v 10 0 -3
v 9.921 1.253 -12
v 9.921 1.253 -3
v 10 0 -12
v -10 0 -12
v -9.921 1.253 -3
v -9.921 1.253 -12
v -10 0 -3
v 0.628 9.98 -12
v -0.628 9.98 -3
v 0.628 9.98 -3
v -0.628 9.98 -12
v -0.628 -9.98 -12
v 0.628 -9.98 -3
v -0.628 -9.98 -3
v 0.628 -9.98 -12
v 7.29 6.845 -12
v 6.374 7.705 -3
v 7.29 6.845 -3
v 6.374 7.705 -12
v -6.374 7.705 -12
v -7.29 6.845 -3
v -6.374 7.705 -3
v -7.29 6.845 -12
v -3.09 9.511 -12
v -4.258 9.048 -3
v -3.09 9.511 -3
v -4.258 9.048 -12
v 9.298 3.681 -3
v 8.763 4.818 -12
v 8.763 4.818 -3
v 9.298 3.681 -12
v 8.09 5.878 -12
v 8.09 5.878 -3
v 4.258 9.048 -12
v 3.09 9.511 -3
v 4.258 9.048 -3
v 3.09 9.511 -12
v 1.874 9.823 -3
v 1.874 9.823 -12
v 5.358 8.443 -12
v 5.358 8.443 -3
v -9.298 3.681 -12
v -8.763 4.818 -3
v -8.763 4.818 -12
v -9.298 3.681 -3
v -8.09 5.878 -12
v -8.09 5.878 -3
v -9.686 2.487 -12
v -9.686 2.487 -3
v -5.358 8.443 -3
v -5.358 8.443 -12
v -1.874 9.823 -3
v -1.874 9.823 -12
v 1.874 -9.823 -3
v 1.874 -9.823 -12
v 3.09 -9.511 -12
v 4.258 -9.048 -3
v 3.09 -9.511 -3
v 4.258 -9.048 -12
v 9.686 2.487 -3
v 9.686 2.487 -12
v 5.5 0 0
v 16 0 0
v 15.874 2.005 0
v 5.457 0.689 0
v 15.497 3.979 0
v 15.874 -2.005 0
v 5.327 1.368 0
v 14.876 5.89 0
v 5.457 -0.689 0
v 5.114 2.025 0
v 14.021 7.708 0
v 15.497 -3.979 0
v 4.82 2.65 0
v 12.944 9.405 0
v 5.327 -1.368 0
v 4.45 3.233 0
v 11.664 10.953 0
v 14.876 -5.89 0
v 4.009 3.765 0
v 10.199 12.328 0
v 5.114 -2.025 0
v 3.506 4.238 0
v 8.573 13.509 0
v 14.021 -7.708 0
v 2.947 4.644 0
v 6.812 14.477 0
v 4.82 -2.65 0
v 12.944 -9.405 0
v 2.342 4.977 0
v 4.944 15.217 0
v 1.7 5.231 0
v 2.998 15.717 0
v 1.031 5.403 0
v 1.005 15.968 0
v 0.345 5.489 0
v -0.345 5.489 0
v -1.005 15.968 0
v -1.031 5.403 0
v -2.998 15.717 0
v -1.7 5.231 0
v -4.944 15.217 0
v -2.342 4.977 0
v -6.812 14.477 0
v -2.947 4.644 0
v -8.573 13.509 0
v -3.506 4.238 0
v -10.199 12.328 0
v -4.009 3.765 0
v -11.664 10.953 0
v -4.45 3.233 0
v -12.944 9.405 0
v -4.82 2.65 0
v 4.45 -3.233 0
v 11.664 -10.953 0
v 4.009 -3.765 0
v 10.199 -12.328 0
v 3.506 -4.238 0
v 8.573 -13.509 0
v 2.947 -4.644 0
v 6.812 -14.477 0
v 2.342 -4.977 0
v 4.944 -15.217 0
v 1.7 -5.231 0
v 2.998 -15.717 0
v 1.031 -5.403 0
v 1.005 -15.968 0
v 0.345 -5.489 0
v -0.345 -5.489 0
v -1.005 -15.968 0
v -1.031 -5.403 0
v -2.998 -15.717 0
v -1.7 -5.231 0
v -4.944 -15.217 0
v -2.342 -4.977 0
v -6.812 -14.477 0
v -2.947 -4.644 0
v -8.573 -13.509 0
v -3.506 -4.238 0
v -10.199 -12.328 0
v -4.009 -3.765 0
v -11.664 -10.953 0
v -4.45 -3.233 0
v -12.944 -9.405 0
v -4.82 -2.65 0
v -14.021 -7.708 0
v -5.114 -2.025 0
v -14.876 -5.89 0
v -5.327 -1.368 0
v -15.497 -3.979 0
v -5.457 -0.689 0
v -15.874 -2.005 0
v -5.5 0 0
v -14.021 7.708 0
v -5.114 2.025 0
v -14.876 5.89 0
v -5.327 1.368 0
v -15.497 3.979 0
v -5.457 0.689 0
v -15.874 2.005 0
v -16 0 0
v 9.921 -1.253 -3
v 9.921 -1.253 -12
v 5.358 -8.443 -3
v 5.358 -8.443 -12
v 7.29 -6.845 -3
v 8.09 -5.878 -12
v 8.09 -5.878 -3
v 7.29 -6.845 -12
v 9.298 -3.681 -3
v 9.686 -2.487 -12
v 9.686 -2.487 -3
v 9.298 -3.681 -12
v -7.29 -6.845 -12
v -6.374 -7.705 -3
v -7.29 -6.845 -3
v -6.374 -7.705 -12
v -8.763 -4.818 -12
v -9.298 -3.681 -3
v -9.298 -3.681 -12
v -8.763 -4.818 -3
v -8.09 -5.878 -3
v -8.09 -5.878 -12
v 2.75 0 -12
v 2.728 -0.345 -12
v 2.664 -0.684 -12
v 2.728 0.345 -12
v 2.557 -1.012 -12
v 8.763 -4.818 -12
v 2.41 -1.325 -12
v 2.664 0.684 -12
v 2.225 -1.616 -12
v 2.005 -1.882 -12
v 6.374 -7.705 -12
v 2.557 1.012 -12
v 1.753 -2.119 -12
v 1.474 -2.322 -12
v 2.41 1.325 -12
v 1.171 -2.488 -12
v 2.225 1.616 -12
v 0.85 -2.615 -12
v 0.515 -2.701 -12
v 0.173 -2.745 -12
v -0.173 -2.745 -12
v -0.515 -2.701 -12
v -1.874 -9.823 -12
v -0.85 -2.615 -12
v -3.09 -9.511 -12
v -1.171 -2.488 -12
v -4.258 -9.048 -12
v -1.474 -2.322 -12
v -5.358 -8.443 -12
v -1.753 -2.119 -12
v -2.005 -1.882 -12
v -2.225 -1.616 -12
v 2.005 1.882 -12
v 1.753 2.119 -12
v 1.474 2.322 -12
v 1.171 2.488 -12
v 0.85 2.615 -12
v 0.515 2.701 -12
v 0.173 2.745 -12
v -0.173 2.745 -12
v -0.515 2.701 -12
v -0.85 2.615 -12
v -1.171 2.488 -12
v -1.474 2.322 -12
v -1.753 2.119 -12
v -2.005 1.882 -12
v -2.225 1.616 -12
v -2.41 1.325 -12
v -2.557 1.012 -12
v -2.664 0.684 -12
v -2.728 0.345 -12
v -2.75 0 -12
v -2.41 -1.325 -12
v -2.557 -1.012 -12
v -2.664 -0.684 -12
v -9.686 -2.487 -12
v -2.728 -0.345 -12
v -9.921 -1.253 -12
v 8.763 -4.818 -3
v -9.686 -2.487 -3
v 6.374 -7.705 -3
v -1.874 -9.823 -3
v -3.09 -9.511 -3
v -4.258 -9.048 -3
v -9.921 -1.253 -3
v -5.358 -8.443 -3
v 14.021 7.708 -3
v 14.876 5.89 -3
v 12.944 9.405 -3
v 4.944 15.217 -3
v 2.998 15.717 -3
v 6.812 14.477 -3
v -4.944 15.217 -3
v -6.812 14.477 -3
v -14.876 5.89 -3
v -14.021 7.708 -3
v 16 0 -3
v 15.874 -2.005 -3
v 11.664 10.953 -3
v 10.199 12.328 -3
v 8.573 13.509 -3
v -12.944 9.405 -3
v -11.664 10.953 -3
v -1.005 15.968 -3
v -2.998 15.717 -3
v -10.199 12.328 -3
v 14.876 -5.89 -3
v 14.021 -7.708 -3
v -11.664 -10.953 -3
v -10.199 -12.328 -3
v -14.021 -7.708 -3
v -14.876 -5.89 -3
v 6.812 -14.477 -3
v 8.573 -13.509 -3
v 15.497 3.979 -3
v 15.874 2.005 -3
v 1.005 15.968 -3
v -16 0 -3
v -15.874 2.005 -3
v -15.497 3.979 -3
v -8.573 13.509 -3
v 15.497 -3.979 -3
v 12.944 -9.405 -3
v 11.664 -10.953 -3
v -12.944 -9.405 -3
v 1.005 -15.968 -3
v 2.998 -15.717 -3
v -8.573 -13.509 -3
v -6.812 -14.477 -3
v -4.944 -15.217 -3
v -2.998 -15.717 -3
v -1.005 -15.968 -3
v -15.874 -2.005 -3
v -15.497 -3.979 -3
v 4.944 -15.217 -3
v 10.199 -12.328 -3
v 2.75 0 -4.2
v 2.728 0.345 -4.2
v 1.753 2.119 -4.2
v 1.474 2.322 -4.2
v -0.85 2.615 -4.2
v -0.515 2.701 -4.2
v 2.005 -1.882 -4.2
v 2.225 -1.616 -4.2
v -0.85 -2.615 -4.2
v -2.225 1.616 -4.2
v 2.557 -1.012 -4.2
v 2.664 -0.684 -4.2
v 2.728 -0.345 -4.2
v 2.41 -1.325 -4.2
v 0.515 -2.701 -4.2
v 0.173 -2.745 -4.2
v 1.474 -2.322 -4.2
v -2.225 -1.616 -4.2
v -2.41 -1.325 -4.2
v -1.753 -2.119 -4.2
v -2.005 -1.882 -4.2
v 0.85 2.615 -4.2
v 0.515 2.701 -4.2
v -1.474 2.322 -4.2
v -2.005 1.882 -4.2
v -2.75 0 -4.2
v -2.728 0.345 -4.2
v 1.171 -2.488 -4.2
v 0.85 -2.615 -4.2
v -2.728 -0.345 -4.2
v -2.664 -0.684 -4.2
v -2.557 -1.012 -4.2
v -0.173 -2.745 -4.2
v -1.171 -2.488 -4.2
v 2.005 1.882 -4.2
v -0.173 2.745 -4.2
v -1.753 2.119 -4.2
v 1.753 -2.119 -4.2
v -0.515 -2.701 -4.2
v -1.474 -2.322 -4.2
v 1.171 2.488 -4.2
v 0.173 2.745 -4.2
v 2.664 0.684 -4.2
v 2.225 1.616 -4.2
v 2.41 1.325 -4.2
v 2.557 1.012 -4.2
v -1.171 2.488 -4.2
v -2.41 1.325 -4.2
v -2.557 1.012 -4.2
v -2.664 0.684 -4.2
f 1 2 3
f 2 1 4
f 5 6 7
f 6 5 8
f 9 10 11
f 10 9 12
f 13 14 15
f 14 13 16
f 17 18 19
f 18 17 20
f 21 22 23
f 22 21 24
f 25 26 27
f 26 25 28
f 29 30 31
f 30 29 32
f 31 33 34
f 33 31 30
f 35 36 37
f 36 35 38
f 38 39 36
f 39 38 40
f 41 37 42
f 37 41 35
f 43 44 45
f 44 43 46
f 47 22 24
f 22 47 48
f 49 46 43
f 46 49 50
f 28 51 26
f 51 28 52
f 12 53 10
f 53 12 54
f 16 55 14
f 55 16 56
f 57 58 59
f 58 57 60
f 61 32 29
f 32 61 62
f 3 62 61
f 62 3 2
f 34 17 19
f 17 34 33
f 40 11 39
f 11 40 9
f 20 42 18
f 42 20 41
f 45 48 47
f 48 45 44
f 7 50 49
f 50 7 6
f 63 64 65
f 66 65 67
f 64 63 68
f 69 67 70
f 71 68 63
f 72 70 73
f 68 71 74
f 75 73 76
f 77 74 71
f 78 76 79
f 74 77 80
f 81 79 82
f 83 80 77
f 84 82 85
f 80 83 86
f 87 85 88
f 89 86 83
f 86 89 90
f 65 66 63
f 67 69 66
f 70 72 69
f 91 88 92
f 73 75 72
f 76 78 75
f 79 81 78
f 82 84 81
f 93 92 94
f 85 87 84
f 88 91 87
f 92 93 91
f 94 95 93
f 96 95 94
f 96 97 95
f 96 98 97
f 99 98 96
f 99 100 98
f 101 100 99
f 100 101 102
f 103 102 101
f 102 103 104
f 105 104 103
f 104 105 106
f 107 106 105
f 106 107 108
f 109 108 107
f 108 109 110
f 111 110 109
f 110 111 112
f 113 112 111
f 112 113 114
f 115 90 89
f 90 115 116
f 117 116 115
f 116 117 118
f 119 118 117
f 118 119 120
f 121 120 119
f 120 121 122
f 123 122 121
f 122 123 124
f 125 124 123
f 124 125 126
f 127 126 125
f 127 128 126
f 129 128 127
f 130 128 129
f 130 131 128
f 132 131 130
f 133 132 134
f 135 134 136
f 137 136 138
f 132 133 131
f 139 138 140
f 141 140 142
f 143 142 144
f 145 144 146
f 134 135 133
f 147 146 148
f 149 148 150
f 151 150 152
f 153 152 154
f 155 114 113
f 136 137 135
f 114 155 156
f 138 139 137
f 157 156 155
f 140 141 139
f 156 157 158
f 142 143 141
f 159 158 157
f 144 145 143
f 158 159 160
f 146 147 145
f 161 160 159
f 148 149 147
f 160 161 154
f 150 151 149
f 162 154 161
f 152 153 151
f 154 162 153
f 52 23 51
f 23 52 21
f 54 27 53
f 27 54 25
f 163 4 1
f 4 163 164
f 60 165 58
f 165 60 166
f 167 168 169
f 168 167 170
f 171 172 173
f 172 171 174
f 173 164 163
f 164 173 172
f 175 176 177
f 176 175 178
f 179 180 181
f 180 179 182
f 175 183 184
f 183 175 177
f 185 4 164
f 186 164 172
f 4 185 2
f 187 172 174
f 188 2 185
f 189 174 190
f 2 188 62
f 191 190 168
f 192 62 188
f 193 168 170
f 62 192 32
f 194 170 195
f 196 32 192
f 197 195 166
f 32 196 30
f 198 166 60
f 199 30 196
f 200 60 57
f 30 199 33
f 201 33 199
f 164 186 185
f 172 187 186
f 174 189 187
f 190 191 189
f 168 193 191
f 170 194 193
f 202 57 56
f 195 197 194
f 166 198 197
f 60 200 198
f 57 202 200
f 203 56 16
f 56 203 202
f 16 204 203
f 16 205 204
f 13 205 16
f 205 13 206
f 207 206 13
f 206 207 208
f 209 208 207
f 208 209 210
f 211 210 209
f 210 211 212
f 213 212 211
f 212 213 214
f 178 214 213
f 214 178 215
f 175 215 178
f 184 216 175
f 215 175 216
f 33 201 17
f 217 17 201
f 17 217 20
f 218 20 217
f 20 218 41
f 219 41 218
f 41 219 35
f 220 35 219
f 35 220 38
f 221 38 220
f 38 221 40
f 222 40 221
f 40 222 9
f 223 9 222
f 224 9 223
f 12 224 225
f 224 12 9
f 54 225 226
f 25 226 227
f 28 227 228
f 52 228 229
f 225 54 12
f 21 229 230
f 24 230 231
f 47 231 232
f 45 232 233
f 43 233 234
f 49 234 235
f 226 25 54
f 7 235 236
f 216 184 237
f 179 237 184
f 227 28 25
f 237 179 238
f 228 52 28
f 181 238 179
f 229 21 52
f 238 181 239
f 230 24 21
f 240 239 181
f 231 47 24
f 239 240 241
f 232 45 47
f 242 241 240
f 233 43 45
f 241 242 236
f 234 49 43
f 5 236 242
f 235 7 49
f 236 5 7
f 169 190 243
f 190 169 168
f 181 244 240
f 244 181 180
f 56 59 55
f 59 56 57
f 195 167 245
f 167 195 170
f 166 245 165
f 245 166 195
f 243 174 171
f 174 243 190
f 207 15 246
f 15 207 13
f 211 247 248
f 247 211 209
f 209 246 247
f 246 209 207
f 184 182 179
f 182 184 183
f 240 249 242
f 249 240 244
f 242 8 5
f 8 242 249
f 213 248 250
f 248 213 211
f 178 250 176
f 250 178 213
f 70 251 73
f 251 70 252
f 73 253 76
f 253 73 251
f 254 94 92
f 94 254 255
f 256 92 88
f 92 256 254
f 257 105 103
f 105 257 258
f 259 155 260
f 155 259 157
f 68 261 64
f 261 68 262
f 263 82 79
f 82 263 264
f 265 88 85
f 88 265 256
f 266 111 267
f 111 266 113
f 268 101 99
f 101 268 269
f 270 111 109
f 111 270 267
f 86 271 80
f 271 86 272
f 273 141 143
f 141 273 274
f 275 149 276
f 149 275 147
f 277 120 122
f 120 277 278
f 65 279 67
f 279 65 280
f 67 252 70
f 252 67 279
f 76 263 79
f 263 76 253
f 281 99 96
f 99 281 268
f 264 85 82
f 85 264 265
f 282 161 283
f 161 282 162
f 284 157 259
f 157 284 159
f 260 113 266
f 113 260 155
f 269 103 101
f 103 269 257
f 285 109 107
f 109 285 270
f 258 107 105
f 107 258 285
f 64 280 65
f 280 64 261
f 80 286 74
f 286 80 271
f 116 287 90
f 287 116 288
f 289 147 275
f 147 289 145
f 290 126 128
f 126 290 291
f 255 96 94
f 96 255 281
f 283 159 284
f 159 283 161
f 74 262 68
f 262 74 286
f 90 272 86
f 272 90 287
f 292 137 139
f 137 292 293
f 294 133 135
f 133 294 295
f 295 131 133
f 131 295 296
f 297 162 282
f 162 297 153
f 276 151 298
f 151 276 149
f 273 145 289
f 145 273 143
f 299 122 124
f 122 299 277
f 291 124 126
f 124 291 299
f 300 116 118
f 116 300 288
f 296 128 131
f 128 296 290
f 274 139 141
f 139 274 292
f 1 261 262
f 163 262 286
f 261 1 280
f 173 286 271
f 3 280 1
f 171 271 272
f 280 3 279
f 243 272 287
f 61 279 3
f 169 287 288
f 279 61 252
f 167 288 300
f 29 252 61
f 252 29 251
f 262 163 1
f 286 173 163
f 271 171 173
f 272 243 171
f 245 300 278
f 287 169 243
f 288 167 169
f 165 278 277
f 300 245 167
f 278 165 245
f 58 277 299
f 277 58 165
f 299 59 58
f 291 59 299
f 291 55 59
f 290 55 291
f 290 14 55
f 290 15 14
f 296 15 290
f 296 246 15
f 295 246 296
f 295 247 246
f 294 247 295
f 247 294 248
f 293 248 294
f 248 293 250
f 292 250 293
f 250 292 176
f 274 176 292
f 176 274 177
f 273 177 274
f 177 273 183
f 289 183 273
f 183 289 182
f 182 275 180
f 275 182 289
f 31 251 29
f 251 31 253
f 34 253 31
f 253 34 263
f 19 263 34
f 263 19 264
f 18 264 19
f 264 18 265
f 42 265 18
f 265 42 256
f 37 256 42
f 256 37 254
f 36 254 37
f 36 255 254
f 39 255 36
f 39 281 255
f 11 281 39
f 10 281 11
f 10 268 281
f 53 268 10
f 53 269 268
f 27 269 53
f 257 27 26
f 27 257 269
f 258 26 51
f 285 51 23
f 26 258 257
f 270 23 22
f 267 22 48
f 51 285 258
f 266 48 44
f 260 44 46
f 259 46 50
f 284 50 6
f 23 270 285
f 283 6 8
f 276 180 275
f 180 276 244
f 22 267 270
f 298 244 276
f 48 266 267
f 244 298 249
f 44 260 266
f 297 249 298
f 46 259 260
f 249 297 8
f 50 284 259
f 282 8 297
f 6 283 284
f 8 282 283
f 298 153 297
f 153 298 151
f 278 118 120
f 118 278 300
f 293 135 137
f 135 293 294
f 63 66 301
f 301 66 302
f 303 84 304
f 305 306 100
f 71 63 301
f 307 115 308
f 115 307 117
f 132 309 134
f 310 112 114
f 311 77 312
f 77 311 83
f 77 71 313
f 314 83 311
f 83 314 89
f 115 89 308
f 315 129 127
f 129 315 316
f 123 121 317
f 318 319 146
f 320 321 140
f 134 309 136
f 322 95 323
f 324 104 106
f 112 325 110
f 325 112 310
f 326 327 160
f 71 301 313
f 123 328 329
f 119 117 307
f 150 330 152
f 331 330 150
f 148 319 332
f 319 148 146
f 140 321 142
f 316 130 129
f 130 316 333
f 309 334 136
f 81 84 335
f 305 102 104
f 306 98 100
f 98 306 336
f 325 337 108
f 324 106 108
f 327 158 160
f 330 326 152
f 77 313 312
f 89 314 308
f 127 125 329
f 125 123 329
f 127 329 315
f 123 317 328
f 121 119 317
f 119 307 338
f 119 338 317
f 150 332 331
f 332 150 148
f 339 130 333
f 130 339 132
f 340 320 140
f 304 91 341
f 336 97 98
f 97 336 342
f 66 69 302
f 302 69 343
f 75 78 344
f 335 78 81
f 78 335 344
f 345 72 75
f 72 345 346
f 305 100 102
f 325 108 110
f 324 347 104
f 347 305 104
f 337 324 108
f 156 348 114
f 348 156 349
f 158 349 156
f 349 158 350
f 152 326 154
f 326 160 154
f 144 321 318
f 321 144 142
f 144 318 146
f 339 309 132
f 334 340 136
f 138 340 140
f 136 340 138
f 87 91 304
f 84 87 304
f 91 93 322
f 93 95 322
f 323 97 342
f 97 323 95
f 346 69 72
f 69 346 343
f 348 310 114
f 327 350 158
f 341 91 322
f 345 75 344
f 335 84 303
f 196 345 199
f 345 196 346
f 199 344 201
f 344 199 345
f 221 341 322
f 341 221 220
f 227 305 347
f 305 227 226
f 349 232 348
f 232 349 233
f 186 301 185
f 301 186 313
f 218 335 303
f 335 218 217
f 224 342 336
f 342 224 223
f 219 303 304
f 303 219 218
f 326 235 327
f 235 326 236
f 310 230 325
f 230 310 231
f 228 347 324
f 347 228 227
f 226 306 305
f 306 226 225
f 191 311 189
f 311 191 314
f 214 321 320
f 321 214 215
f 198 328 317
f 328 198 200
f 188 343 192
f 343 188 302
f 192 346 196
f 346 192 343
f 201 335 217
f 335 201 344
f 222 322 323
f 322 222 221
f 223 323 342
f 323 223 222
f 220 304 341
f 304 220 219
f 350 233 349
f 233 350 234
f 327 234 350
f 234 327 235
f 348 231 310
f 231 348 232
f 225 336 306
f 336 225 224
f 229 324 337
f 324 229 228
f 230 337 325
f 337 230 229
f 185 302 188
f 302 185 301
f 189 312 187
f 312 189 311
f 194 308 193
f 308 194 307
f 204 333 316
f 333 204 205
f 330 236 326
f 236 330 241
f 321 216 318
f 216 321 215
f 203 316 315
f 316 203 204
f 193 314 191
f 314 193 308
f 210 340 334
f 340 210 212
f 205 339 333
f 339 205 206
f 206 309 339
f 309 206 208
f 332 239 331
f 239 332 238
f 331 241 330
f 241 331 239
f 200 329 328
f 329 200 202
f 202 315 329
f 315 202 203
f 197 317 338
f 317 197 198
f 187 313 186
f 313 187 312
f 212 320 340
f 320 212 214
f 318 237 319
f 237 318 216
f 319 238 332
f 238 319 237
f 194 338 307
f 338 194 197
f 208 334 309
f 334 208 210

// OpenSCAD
$fn = 50;


difference() {
	union() {
		translate(v = [0, 0, -12.0000000000]) {
			cylinder(h = 12, r = 10.0000000000);
		}
		translate(v = [0, 0, -3.0000000000]) {
			cylinder(h = 3, r = 16.0000000000);
		}
	}
	union() {
		translate(v = [0, 0, 0]) {
			rotate(a = [0, 0, 0]) {
				difference() {
					union() {
						#translate(v = [0, 0, -12.0000000000]) {
							cylinder(h = 12, r = 2.2500000000);
						}
						#translate(v = [0, 0, -4.2000000000]) {
							cylinder(h = 4.2000000000, r1 = 2.7500000000, r2 = 5.5000000000);
						}
						#translate(v = [0, 0, -12.0000000000]) {
							cylinder(h = 12, r = 2.7500000000);
						}
						#translate(v = [0, 0, -12.0000000000]) {
							cylinder(h = 12, r = 2.2500000000);
						}
					}
					union();
				}
			}
		}
	}
}
